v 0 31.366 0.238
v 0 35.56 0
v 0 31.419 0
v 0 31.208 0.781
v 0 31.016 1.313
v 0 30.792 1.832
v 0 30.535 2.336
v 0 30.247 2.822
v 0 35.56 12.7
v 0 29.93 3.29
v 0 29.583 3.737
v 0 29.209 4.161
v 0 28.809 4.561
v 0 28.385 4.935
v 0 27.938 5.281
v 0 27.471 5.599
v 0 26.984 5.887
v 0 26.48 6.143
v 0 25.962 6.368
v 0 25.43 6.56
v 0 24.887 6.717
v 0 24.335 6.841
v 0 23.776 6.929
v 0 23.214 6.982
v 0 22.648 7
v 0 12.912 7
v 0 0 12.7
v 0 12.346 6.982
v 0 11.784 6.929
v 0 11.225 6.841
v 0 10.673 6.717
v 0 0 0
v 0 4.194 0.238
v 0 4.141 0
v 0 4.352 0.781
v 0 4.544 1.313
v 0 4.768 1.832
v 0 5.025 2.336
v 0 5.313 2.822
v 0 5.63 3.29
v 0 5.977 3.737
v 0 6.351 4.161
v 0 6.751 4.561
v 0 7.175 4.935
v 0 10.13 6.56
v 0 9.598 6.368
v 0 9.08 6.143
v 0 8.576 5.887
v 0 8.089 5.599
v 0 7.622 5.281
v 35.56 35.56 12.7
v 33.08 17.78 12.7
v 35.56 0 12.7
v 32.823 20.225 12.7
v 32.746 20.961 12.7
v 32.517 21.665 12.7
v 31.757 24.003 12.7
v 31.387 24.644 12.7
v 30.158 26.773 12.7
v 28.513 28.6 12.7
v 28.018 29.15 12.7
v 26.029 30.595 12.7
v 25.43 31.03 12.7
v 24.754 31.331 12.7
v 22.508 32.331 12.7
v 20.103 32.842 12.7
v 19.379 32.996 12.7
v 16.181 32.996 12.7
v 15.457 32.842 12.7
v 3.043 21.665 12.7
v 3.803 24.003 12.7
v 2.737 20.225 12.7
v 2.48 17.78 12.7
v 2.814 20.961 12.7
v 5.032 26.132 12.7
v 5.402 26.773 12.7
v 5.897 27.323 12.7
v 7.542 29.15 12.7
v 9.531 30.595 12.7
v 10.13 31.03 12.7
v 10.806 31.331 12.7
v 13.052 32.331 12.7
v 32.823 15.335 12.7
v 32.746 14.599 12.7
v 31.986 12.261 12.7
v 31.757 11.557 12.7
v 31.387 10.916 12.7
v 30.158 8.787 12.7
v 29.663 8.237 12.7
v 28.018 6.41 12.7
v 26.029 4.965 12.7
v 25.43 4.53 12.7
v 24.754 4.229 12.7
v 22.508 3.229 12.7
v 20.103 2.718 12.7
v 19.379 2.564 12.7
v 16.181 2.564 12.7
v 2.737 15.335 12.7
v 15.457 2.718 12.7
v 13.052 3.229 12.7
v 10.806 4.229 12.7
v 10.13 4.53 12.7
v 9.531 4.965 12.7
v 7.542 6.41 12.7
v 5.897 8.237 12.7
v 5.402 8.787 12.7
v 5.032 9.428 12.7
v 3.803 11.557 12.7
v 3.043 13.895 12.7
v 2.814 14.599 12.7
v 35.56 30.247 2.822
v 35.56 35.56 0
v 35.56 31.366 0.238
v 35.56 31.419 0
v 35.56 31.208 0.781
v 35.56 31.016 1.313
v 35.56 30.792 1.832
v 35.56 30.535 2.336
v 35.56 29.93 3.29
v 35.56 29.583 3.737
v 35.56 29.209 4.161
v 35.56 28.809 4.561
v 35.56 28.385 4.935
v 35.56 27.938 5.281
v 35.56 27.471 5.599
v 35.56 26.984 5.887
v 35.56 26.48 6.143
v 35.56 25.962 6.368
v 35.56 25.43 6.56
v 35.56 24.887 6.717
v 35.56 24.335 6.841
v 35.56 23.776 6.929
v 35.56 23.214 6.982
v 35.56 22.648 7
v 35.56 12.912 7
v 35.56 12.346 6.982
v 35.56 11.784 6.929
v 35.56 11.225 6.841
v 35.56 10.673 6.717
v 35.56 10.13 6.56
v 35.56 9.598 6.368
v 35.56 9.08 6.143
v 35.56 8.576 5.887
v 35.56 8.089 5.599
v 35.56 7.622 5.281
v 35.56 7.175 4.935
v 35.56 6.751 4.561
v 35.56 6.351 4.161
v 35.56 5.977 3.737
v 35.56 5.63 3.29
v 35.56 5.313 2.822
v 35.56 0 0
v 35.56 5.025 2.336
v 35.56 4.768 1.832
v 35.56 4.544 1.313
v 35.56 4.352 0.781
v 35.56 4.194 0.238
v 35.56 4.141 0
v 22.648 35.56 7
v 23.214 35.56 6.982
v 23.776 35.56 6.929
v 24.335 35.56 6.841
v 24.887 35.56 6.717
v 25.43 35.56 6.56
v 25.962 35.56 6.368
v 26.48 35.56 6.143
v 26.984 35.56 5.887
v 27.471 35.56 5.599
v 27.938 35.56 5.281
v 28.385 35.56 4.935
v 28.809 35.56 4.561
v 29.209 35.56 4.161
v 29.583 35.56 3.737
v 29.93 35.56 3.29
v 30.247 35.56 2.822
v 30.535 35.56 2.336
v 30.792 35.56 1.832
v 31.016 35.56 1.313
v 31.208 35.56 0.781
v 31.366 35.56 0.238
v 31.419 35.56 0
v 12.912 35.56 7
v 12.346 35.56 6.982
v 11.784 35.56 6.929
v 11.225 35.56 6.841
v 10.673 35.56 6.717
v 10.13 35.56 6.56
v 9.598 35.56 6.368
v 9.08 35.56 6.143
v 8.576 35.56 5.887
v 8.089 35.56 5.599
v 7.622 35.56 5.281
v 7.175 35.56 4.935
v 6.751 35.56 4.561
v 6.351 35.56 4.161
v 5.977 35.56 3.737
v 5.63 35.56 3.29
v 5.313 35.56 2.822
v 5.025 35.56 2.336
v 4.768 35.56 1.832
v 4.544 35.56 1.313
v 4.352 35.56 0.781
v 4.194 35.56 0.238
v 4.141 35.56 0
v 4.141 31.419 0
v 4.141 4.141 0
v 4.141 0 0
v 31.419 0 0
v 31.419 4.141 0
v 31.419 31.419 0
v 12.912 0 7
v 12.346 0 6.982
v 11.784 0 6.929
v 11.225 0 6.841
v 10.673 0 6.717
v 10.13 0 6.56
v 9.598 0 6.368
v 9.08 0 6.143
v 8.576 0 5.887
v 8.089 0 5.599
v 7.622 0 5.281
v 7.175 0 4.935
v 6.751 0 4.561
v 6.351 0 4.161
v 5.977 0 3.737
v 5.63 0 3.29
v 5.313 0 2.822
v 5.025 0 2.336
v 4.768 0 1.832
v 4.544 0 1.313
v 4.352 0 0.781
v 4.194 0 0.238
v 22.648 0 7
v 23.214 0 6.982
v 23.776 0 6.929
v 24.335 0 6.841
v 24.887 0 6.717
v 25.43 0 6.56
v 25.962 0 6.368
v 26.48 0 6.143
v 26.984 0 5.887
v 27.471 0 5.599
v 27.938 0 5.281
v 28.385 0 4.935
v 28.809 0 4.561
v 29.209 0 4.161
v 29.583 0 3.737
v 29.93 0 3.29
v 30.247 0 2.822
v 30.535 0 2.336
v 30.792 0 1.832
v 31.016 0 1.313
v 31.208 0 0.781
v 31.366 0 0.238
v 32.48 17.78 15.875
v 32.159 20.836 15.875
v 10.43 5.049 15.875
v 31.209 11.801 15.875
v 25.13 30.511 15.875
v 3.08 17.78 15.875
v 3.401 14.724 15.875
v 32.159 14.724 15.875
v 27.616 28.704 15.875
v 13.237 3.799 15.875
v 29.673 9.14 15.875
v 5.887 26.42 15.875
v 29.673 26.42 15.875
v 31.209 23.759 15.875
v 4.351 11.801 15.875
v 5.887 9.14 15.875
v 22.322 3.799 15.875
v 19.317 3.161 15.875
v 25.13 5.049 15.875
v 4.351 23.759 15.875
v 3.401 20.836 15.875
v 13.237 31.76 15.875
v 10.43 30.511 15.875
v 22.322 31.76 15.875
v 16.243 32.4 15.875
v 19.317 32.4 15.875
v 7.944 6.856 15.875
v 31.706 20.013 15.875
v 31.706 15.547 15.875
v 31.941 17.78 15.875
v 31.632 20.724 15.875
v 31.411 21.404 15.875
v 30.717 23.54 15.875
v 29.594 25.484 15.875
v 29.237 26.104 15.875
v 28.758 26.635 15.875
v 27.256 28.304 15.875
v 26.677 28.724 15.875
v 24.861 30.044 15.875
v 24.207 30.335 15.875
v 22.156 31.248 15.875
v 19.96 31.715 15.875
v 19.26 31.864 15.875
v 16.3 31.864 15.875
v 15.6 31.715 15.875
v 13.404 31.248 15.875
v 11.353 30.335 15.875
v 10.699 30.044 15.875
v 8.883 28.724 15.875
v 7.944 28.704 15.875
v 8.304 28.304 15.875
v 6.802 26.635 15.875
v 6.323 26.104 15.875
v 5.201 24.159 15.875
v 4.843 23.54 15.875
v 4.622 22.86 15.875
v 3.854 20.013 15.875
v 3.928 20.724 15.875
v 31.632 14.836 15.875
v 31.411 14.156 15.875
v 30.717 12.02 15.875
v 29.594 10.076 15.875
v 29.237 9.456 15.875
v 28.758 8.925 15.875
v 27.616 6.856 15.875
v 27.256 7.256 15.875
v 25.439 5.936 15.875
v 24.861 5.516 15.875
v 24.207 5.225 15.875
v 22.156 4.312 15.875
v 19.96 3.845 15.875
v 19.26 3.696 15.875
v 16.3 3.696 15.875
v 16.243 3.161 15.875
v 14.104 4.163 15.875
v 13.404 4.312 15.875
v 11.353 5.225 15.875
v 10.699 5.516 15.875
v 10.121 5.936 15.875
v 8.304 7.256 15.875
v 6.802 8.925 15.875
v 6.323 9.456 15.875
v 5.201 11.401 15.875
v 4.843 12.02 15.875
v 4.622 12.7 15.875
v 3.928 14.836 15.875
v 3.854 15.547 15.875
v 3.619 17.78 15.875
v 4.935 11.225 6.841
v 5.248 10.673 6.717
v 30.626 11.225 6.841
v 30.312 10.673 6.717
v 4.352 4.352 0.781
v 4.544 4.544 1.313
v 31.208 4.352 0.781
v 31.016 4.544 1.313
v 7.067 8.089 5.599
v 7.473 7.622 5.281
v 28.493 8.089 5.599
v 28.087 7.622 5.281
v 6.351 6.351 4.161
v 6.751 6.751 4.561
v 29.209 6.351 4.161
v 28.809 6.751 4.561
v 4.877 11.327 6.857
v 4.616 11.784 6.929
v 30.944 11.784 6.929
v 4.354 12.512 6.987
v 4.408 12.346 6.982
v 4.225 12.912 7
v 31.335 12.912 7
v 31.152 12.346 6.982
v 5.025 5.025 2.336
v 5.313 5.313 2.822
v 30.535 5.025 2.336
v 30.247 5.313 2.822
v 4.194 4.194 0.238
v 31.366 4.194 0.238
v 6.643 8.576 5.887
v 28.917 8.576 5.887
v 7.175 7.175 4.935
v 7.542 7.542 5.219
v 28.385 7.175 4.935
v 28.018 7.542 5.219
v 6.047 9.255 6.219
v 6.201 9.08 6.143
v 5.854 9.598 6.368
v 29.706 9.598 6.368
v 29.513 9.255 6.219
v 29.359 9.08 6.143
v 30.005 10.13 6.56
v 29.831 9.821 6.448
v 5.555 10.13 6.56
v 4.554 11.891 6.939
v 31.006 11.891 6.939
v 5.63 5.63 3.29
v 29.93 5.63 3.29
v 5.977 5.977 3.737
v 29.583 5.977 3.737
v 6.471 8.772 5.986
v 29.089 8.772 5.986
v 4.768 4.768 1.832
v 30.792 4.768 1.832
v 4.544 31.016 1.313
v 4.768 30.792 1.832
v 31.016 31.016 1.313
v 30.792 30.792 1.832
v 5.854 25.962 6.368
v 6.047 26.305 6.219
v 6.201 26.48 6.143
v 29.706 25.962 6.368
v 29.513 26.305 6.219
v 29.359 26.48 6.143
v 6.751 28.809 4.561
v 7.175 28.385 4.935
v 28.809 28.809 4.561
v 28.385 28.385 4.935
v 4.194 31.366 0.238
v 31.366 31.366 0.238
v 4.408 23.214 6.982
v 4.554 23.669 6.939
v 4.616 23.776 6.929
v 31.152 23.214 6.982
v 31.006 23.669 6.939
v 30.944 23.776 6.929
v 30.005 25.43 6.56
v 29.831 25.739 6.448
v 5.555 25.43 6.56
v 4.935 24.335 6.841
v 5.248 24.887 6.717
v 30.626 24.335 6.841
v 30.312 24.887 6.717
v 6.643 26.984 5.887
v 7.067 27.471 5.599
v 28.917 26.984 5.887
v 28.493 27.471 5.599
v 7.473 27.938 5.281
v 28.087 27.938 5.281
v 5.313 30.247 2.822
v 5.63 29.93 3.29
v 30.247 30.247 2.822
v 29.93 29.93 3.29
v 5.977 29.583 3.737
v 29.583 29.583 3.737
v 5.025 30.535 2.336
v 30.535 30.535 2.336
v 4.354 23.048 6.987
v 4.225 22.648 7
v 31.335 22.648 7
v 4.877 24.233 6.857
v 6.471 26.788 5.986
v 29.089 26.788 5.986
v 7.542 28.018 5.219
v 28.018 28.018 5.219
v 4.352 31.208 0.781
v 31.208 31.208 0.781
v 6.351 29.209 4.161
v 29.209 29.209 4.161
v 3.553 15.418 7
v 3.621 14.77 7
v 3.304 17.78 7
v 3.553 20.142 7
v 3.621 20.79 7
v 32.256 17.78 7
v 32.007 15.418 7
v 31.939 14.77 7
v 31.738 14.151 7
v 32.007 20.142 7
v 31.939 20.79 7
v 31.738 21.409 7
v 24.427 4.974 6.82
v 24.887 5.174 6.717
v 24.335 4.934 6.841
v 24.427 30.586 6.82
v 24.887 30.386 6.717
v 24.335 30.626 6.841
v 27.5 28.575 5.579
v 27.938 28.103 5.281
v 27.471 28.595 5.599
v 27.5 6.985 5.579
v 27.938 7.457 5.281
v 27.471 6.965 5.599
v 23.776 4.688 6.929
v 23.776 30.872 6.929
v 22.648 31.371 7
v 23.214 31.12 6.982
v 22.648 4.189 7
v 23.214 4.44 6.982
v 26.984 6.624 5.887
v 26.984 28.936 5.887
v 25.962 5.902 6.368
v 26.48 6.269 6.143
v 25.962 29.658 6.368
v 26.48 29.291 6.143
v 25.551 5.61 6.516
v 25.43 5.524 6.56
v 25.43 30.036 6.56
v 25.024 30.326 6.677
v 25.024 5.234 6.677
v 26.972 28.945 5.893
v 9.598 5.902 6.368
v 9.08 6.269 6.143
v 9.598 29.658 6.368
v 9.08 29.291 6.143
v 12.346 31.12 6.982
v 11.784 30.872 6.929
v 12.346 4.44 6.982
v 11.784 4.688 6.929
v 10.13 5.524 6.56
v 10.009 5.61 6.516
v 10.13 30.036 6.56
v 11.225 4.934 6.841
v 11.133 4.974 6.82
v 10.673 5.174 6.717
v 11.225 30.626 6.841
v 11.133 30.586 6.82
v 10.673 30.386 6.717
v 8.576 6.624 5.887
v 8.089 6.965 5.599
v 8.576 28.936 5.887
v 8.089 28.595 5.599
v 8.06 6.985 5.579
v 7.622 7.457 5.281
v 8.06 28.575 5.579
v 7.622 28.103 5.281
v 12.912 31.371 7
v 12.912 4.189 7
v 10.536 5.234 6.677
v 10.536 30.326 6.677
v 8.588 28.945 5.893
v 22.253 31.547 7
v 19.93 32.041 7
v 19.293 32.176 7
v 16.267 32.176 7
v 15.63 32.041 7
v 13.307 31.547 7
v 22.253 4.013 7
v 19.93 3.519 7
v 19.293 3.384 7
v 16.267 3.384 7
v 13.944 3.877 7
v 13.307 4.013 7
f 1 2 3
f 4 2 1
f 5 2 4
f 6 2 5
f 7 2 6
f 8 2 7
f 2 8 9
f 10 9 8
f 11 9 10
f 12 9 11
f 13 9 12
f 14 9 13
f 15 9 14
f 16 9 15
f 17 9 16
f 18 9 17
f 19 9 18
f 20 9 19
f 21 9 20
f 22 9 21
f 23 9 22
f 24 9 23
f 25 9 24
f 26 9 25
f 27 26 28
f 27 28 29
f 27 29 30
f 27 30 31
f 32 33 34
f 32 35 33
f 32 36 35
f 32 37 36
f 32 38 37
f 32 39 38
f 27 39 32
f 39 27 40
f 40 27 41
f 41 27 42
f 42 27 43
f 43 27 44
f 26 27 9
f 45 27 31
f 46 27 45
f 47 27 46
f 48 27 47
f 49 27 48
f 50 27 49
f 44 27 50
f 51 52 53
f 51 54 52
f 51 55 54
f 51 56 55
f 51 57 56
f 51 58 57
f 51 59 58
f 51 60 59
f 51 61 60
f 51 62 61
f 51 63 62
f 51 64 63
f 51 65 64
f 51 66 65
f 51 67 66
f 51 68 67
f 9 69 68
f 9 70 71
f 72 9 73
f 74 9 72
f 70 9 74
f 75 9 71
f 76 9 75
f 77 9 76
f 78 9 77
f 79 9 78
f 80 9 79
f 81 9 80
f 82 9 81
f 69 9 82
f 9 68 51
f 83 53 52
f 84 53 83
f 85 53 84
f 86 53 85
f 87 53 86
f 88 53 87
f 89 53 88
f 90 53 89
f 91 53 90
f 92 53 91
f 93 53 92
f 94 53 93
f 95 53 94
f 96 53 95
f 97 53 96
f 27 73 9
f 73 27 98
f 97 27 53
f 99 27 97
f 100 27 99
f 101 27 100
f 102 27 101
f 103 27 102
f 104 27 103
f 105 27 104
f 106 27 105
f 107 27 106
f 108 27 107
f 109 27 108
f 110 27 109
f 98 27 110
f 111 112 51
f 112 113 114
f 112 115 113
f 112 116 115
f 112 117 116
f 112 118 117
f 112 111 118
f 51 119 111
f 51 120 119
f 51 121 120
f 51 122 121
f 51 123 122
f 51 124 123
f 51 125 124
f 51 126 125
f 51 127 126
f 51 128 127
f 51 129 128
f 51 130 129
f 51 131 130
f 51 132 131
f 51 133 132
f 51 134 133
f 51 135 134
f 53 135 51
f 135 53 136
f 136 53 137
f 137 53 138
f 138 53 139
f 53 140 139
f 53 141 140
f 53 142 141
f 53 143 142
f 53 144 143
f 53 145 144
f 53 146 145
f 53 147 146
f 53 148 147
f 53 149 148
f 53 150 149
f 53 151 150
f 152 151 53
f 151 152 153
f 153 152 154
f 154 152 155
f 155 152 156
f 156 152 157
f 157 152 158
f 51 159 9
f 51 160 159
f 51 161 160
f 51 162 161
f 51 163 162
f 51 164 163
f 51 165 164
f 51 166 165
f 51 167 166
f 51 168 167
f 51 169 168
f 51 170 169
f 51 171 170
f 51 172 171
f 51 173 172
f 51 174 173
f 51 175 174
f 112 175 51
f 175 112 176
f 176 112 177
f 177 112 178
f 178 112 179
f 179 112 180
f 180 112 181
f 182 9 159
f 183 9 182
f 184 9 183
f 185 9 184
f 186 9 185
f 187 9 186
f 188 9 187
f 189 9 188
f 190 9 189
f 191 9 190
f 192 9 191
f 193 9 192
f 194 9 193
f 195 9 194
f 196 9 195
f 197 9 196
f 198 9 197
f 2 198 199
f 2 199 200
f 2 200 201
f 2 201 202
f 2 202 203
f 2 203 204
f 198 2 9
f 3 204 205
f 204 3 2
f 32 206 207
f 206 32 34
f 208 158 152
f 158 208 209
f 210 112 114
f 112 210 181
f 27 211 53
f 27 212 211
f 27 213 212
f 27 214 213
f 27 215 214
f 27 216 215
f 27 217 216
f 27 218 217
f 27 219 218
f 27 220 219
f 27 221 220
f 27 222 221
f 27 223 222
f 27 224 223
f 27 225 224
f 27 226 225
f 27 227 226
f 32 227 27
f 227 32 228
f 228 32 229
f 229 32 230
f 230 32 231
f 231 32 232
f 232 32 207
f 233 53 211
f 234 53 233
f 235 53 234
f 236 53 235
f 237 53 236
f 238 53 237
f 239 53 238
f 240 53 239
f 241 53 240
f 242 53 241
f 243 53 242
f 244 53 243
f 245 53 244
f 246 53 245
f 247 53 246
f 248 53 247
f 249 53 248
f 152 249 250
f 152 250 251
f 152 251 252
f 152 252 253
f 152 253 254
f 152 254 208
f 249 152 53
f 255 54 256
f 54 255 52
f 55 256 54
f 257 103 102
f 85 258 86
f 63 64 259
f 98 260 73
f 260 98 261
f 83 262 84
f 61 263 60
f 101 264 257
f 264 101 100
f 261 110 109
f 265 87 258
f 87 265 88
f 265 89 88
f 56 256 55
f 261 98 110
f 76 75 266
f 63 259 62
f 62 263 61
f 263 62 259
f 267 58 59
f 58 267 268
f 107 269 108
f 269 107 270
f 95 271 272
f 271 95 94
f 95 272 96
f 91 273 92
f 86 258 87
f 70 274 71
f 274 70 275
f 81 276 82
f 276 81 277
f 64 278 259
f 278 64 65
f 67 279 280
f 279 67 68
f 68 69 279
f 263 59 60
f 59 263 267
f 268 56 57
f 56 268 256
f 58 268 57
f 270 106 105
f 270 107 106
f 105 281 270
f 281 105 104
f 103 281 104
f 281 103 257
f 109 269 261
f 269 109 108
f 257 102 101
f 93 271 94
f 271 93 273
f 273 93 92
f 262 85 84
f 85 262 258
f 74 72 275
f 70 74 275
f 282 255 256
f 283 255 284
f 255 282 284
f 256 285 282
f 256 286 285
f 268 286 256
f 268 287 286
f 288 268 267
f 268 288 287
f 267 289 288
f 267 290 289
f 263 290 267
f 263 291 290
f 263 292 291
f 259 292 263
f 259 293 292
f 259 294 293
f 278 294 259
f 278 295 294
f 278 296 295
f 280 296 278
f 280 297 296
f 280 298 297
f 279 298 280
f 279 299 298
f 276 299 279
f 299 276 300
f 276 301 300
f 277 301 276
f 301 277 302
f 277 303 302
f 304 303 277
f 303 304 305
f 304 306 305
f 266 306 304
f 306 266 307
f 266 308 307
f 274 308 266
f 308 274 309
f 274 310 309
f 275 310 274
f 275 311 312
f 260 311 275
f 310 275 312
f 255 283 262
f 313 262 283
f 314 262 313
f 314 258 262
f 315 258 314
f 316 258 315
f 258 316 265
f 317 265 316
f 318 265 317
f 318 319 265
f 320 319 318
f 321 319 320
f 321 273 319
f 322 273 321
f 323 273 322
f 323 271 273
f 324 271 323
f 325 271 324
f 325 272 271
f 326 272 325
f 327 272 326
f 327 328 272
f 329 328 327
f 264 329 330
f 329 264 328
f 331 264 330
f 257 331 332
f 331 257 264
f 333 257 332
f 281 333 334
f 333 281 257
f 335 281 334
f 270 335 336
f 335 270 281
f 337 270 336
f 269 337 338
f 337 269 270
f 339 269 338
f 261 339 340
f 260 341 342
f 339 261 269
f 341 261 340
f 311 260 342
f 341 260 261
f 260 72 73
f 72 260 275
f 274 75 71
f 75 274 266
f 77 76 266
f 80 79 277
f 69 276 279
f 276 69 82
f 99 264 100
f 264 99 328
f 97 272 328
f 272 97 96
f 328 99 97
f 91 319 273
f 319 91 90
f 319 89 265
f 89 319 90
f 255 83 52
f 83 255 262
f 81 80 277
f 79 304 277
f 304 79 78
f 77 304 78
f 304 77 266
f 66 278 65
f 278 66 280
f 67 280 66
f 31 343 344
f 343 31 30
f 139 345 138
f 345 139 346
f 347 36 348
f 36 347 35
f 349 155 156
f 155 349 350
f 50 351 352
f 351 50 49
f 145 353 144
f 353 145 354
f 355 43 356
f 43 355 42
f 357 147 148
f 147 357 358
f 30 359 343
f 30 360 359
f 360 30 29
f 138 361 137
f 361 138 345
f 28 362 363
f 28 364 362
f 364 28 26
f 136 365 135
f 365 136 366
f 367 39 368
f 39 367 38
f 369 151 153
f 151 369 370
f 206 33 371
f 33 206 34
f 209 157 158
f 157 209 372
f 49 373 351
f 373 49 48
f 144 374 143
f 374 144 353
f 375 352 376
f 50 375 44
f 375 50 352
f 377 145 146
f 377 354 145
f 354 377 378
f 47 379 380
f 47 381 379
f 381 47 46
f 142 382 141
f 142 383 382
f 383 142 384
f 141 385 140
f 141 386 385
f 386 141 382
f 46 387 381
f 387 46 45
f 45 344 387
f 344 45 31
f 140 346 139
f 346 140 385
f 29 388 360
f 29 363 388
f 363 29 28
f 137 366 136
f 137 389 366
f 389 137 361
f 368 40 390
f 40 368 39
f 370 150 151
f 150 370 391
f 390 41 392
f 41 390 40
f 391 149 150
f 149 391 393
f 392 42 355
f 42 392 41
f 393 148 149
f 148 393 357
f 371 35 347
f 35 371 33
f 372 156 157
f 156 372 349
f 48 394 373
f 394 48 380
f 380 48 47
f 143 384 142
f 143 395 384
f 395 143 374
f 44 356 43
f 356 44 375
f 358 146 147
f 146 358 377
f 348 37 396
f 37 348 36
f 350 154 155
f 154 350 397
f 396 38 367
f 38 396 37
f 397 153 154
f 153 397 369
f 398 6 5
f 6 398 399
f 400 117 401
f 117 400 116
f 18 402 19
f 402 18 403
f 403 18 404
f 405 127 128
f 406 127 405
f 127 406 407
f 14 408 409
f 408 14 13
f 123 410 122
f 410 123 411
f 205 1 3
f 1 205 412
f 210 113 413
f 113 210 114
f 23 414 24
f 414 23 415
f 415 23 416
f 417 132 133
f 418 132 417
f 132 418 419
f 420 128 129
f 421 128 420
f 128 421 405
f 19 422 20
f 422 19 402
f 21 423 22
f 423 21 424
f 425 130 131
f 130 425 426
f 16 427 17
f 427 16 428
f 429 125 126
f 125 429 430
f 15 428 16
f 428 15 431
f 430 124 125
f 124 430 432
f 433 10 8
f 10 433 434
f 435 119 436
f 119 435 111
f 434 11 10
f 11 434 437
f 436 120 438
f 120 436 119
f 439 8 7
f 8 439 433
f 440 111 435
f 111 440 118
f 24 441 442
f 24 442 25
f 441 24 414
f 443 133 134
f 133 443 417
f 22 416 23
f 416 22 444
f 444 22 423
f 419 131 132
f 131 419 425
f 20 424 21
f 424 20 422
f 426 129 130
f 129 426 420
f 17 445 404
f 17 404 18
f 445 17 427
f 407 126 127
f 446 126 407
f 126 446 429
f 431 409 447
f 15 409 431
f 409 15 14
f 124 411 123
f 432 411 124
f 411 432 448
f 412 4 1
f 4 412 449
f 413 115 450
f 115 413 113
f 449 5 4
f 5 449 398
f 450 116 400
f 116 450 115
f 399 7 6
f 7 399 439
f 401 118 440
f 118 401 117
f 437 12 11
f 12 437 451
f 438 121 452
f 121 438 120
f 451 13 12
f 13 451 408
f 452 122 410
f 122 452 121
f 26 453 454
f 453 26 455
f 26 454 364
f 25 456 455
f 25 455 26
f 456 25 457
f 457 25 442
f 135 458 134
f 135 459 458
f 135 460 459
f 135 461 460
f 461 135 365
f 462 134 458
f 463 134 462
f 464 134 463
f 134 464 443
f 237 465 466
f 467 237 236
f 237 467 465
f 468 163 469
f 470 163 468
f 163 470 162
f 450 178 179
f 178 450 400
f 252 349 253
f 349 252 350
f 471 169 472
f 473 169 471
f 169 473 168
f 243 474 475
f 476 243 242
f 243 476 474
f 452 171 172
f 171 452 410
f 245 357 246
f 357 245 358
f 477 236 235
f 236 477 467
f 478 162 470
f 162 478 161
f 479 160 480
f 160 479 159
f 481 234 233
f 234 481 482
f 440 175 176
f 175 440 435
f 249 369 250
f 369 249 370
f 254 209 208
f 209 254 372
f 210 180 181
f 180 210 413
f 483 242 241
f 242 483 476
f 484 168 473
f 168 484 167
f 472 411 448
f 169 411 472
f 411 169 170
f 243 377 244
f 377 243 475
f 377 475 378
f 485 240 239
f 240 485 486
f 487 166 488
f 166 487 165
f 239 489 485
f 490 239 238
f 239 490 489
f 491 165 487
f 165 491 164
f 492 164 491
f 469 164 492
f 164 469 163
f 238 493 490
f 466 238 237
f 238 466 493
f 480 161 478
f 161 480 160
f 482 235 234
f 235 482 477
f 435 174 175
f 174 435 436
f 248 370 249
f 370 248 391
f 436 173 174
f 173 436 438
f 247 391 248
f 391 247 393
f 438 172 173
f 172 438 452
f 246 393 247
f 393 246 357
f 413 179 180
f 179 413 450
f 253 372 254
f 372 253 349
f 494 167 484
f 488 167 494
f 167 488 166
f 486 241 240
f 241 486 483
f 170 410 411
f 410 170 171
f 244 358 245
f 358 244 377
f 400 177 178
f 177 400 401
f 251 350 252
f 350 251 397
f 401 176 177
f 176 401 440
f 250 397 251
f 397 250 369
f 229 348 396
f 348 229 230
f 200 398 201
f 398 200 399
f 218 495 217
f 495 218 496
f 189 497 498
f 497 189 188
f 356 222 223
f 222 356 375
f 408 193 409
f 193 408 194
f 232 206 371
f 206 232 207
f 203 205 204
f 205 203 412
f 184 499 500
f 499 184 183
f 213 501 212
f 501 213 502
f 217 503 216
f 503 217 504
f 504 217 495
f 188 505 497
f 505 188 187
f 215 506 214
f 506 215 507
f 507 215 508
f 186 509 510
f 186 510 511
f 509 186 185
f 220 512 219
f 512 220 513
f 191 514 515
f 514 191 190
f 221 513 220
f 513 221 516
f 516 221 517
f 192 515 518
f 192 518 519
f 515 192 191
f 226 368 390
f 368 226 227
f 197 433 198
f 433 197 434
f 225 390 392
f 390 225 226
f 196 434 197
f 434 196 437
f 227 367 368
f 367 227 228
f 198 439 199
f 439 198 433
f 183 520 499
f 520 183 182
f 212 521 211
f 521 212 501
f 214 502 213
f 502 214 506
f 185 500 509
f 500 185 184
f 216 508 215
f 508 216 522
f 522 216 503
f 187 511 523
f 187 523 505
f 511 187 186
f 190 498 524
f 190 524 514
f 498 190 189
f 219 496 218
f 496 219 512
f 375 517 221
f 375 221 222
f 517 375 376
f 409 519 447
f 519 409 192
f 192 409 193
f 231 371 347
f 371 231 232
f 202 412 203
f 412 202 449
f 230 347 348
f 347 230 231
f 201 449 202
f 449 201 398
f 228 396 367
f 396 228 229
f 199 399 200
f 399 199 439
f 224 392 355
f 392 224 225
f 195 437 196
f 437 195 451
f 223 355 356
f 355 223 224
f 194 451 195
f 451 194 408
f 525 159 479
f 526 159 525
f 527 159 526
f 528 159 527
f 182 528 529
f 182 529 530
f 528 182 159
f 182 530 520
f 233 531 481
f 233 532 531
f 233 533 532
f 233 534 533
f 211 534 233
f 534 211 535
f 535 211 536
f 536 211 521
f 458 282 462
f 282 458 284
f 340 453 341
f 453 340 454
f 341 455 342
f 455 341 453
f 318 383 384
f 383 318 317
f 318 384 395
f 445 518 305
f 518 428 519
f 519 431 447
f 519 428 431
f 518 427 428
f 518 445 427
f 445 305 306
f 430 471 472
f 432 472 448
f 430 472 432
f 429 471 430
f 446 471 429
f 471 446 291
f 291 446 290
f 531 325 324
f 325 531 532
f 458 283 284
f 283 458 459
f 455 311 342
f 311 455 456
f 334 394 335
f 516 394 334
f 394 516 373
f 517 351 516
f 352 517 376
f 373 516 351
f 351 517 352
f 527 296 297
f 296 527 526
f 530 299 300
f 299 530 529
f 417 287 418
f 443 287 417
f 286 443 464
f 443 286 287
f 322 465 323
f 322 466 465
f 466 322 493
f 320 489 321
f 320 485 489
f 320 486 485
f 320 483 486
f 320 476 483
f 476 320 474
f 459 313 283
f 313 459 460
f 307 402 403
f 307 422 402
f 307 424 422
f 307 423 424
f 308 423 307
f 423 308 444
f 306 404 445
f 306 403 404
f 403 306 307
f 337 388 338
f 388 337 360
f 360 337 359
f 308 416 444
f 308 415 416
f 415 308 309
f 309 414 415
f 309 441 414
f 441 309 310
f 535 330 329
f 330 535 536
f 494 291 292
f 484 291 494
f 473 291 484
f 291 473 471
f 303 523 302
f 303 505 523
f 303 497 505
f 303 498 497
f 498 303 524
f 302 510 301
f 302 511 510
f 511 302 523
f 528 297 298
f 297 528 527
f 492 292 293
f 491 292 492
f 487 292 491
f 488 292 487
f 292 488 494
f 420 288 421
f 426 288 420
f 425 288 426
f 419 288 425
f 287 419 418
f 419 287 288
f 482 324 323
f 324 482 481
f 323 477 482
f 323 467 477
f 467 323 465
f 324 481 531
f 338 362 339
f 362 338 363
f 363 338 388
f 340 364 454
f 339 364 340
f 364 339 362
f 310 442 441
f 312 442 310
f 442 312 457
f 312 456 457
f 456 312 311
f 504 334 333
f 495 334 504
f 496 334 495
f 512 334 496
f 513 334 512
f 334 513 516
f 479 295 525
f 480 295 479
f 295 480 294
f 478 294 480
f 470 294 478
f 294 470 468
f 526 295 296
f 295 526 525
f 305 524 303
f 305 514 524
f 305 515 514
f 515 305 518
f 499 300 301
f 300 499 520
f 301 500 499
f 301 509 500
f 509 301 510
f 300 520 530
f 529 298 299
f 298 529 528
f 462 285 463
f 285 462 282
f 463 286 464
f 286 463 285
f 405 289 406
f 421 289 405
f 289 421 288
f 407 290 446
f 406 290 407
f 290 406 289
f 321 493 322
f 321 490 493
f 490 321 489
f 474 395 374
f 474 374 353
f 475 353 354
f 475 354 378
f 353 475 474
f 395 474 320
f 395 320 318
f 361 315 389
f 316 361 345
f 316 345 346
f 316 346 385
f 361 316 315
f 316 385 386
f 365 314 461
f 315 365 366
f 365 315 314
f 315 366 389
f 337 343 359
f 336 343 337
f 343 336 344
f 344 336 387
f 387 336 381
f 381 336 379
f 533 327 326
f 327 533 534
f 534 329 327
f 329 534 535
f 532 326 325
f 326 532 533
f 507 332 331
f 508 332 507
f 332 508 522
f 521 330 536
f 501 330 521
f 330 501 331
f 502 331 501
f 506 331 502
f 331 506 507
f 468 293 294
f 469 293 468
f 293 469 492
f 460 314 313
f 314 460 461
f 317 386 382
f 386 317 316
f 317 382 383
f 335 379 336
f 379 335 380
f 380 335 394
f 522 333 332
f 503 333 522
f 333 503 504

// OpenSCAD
use <MCAD/boxes.scad>

anolini_radius=25.4*.5;
anolini_outter_radius=anolini_radius;
press_height=25.4*.5;
press_size=anolini_radius*2*1.4;
press_cut_depth=25.4*.125;
press_seam=4;
use_seam=0;


union(){
    for (i = [0:0]) {
        translate([0,(press_size-1)*i, 0]){
            for (i = [0:0]) {
                translate([i*(press_size-1),0,0])
                single_press();
            }
        }
    }
}




module single_press(){
        union(){
        difference(){
            union(){
                cube([press_size,press_size,press_height]);
                translate([press_size/2,press_size/2,0]){
                    color("yellow")
                    cylinder(h = press_height+press_cut_depth, r1 = anolini_outter_radius+5, r2 = anolini_outter_radius+2, center = false);
                }
                if (use_seam > 0) {
                    translate([press_size/2,press_size/2,1.2]){
                        color("green")
                        difference(){
                            cylinder(h = press_height+press_cut_depth, r1 = anolini_outter_radius+5, r2 = anolini_outter_radius+2.4, center = false);
                            translate([0,0,-1])
                            cylinder(h = press_height+press_cut_depth+2, r1 = anolini_outter_radius+4, r2 = anolini_outter_radius+2, center = false);
                        }
                    }   
                }
            }

            translate([press_size/2,press_size/2,press_height+press_cut_depth+4])
            sphere(anolini_outter_radius*1.12, $fn=100); 
            
            translate([press_size/2,press_size/2,-(press_height*20)+170])
            color("red")
            #cylinder(h = press_height*20, r1 = anolini_radius+5, r2 = anolini_radius-press_seam, center = false);

/*
            color("cyan")
            translate([press_size/2,press_size/2,press_height*.52])
            cylinder(h = press_height*.5, r1 = anolini_radius*1.3, r2 = anolini_radius, center = false);

*/
            if (use_seam > 0) {
                translate([press_size/2,press_size/2,press_height+press_cut_depth-13])
                for(i = [0:20]){
                    color("black")
                    rotate([0,0,20*i])
                    roundedBox([2*anolini_outter_radius+(press_seam)-.6,2,press_height+press_cut_depth+3.8],  .5, true, $fn=100);
                }
            }
            color("blue")
            translate([2,press_size/2,-4])
            rotate([0,90,0])
            roundedBox([22,press_size*.78,100],  9, true, $fn=100);

            translate([press_size/2,25,-4])
            rotate([0,90,90])
            roundedBox([22,press_size*.78,100],  9, true, $fn=100);
        }
    }
}
